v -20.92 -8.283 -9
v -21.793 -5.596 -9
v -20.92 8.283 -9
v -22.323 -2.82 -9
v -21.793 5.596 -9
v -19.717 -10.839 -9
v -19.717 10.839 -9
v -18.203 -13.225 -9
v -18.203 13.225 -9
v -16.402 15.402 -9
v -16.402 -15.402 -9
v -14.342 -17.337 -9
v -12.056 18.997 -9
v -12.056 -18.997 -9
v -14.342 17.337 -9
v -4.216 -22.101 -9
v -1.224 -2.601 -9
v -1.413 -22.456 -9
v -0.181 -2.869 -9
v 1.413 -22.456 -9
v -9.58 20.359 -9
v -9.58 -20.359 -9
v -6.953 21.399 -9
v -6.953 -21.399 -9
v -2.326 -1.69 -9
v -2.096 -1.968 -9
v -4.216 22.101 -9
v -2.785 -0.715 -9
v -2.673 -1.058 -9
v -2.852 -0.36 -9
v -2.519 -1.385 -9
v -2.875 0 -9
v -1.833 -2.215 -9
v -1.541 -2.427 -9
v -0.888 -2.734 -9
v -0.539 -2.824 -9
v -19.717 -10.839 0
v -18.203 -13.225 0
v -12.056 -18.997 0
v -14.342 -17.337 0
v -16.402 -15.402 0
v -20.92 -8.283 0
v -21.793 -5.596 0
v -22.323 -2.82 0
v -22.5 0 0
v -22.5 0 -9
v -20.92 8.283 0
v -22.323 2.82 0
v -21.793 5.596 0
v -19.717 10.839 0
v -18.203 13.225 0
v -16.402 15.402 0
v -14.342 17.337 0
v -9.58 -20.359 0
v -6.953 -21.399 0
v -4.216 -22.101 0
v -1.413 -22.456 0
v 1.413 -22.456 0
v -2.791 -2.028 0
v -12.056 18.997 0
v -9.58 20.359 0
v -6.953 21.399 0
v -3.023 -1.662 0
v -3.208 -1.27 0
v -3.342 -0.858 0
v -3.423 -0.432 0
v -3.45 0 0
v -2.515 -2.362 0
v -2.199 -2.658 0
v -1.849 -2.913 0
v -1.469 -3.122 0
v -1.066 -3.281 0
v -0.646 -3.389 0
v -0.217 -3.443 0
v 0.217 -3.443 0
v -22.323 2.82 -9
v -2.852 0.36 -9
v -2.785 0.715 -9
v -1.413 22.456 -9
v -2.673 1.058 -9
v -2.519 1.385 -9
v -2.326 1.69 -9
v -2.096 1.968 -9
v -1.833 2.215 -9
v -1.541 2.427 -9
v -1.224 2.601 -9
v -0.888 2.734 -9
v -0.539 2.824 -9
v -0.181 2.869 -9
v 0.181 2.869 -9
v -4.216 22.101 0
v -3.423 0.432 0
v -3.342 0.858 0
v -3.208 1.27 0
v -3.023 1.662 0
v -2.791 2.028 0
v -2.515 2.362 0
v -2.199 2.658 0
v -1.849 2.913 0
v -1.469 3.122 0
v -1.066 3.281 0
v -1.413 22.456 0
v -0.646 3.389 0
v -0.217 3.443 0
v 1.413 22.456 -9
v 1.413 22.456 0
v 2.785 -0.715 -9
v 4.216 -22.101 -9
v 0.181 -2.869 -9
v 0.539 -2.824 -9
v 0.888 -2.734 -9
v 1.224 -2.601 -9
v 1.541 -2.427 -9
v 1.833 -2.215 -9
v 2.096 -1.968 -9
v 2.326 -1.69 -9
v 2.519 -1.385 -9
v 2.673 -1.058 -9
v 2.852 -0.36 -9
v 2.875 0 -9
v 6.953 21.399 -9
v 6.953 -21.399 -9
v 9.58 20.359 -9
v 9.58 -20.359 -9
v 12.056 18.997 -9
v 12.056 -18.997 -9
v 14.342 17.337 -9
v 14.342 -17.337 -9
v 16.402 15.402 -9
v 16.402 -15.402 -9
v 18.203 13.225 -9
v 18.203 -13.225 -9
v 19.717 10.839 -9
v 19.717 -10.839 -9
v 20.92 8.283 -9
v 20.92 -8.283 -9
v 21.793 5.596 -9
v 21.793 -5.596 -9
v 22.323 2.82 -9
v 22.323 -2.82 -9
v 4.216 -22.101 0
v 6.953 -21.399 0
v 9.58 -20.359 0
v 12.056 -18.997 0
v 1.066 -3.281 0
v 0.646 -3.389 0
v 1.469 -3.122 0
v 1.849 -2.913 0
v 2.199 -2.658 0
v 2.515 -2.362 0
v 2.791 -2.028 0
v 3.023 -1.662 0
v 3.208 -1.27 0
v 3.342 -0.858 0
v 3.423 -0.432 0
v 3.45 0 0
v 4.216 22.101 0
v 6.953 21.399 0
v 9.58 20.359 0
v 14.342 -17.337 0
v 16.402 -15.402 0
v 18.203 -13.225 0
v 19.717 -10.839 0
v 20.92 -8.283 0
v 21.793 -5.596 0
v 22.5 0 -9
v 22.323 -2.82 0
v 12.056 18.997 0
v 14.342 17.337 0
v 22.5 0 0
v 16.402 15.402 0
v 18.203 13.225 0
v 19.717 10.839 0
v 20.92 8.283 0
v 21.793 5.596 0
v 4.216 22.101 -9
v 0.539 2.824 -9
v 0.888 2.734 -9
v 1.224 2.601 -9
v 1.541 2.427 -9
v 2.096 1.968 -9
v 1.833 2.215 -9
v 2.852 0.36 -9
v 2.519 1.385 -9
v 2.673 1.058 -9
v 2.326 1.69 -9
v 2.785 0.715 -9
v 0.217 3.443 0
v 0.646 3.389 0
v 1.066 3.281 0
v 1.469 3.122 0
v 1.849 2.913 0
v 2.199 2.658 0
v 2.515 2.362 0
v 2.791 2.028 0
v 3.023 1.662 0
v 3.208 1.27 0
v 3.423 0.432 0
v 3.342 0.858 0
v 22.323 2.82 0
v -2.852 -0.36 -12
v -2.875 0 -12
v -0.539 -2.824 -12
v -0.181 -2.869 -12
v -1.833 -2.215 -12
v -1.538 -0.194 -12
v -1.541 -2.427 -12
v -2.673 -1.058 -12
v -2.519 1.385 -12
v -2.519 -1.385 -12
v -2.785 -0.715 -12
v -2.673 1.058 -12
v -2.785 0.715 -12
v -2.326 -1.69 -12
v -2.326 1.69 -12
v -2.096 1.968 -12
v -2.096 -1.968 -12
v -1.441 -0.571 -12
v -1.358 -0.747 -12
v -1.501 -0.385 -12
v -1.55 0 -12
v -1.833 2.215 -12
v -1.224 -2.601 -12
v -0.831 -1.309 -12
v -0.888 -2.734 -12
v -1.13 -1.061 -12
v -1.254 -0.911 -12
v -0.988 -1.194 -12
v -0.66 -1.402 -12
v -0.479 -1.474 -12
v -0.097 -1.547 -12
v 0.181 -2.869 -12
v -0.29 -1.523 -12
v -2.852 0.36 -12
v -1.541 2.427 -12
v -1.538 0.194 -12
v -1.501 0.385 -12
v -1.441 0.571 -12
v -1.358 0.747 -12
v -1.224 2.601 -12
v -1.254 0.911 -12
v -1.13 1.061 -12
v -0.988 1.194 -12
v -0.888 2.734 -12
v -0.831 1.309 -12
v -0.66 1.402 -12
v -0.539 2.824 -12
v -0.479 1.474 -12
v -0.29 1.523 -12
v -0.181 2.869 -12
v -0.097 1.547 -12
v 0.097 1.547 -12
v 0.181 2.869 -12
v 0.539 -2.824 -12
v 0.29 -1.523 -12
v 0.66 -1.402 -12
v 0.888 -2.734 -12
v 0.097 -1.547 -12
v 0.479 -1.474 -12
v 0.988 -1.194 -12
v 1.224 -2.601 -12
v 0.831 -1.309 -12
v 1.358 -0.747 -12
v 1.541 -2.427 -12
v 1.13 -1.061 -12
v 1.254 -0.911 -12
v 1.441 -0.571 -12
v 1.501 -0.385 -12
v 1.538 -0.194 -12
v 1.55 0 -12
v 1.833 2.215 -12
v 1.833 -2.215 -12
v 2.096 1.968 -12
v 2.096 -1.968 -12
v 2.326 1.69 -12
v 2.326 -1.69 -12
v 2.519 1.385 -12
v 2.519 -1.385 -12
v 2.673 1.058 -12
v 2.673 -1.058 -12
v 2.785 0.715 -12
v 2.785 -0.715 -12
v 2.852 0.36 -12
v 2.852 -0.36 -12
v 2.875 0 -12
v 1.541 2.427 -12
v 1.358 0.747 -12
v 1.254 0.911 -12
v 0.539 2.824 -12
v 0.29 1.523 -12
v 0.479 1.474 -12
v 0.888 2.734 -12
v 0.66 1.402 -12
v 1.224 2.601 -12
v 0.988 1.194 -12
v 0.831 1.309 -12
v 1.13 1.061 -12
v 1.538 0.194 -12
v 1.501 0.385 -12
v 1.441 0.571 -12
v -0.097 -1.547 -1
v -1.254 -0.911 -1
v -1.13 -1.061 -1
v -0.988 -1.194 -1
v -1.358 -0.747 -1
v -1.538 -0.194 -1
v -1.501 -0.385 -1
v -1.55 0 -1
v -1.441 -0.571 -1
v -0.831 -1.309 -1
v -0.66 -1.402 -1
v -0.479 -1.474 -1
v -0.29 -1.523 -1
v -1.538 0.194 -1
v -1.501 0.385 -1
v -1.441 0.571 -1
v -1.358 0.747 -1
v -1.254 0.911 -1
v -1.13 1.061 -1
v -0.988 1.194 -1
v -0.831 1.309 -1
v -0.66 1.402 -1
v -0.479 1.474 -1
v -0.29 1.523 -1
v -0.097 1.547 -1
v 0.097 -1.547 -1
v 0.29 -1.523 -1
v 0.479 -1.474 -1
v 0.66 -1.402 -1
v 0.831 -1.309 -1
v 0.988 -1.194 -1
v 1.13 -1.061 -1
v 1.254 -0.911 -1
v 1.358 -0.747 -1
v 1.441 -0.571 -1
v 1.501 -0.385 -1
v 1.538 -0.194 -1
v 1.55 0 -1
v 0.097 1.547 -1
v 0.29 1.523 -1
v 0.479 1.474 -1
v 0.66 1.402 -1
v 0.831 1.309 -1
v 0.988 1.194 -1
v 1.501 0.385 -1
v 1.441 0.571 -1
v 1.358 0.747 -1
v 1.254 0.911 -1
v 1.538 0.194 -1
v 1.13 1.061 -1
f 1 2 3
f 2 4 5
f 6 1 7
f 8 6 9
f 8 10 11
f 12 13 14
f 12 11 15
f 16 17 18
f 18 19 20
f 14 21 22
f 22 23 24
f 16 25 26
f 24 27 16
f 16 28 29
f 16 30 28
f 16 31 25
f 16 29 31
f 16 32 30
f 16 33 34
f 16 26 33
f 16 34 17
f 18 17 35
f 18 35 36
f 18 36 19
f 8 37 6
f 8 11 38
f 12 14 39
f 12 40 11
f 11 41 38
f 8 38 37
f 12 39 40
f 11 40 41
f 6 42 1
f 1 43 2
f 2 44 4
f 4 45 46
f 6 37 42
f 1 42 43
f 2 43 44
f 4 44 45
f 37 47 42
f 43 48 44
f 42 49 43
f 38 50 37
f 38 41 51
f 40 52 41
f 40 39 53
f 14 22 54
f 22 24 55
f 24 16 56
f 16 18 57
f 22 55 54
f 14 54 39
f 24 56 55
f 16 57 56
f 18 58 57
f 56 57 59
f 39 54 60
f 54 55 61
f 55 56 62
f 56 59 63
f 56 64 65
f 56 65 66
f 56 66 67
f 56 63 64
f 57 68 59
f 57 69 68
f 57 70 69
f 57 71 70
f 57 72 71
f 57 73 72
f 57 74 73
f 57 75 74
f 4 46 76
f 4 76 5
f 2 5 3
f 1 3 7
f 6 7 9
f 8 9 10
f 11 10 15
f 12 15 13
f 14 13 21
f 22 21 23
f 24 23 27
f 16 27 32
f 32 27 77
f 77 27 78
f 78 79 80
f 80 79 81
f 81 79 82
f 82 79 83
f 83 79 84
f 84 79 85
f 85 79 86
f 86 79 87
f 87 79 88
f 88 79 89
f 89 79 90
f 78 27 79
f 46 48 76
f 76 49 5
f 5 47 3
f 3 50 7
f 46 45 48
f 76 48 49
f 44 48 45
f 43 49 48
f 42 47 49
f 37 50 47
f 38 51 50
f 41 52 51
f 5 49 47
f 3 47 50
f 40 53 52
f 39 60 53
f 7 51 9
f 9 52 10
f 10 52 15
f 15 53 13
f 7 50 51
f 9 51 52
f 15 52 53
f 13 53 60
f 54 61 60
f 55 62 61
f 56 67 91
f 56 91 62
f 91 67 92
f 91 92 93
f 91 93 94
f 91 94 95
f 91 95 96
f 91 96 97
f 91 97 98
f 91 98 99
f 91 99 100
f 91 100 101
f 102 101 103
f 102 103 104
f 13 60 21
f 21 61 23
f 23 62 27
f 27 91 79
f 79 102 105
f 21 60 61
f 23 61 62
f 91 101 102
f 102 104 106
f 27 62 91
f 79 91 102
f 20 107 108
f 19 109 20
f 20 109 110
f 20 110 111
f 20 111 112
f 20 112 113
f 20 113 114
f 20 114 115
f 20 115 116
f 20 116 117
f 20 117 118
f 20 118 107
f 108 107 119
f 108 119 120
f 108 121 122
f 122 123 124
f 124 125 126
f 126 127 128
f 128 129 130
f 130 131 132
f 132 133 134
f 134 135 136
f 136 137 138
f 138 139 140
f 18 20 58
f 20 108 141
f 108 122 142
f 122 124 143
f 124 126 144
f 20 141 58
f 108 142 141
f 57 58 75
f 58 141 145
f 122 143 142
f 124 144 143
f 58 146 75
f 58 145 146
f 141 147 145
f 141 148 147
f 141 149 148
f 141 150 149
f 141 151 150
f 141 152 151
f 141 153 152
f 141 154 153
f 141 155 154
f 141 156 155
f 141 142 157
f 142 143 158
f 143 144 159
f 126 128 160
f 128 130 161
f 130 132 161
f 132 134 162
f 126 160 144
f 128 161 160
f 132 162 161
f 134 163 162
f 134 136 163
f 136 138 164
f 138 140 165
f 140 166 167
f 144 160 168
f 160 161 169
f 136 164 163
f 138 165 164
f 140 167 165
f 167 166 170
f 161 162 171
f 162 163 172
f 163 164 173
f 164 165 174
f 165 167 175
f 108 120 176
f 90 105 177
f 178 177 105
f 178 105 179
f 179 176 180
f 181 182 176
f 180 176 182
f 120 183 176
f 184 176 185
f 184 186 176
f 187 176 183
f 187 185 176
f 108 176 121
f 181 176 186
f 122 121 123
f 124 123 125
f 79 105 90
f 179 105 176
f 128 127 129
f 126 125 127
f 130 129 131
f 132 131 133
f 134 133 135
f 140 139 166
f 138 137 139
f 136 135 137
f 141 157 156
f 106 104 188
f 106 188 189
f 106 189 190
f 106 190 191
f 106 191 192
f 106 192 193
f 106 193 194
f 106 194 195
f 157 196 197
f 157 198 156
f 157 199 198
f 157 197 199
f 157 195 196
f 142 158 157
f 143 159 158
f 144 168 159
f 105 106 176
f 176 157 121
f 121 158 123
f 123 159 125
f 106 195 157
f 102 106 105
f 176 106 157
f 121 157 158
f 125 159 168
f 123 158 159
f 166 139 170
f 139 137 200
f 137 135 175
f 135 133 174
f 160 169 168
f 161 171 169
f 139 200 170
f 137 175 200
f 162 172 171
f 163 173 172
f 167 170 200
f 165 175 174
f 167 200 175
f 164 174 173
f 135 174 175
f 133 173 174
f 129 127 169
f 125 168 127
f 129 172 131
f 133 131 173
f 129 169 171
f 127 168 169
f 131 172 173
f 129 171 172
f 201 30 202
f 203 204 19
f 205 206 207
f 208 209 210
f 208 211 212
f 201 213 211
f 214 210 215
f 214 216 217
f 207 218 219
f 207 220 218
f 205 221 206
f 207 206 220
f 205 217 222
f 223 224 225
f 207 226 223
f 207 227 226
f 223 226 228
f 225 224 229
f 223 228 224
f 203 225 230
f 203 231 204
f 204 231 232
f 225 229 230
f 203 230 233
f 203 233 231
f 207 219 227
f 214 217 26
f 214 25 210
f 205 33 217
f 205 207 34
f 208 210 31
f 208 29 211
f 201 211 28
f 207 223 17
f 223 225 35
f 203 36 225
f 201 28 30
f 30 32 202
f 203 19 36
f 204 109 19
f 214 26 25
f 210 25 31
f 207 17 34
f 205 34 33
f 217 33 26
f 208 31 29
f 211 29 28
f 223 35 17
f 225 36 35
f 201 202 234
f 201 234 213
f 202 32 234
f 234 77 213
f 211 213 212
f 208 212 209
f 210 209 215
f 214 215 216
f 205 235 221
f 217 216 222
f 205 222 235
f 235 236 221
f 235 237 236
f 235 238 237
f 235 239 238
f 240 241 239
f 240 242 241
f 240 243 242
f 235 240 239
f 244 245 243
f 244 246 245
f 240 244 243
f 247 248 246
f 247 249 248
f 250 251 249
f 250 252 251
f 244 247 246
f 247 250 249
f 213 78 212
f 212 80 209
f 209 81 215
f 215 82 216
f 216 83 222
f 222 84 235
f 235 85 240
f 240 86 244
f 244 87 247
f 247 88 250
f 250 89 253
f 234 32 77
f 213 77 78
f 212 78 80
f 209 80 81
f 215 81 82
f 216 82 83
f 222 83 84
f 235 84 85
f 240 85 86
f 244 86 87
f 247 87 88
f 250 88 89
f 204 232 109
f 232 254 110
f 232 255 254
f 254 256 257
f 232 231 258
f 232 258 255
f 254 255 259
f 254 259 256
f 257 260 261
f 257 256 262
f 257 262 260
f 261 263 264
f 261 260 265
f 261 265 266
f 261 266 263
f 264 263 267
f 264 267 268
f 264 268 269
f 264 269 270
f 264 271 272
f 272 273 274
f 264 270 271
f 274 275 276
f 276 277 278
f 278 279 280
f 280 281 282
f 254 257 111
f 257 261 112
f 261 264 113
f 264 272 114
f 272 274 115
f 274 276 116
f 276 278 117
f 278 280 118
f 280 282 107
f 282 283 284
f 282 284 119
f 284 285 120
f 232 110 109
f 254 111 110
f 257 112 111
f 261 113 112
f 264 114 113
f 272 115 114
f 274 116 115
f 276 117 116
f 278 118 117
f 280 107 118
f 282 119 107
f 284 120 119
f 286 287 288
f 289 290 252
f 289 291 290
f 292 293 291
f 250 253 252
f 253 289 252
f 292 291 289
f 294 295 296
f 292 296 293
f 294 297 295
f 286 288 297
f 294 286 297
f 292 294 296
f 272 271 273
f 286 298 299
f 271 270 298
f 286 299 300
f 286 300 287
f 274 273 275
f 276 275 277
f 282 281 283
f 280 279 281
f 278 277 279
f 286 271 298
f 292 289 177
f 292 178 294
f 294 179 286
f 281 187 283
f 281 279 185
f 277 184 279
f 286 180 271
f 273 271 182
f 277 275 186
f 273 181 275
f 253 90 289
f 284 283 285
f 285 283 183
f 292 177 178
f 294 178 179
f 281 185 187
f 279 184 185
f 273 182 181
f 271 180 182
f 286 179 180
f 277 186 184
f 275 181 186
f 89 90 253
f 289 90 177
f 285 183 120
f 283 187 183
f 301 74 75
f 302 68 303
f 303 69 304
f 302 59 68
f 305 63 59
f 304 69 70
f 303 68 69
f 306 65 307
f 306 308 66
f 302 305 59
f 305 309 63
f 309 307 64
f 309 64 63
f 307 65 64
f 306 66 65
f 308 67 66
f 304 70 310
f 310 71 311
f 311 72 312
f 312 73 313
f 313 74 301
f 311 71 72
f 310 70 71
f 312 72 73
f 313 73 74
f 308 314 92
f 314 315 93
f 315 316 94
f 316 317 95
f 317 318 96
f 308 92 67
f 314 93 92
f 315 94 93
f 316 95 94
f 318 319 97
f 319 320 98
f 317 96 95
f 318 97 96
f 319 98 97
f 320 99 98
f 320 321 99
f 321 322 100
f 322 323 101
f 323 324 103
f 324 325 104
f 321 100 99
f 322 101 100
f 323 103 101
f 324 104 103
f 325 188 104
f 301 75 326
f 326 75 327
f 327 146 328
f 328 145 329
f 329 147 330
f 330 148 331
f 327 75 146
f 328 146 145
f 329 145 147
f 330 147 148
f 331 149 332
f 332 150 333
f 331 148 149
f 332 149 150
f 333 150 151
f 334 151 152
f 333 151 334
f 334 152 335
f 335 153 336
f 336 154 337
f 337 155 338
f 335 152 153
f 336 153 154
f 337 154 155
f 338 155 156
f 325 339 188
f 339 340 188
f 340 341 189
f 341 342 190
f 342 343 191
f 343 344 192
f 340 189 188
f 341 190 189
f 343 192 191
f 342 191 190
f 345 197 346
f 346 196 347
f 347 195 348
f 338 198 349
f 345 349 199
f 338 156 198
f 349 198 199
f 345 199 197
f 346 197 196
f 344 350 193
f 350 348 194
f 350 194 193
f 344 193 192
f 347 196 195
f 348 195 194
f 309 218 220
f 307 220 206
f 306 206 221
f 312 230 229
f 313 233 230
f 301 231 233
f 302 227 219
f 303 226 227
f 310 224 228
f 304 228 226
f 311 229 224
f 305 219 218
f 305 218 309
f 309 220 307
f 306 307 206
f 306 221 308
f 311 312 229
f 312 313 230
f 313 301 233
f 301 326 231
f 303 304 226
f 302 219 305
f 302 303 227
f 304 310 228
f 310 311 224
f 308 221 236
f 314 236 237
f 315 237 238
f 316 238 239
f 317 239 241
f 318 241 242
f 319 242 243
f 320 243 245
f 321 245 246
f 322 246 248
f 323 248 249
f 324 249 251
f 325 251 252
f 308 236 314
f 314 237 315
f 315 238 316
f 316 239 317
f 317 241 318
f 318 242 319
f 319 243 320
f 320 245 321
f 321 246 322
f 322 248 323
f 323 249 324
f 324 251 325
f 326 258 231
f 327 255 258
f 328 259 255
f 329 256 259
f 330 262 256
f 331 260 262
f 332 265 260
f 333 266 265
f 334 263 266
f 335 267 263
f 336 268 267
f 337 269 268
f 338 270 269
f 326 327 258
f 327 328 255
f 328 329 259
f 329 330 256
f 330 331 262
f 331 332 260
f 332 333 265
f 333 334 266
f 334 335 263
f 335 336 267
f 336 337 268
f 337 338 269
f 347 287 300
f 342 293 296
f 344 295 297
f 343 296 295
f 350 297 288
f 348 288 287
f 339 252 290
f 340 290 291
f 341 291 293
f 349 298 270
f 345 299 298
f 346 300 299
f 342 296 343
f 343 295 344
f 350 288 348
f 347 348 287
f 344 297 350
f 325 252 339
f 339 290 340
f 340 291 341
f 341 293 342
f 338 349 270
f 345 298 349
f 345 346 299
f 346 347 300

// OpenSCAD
$fn = 50;


difference() {
	union() {
		translate(v = [0, 0, -9.0000000000]) {
			cylinder(h = 9, r = 22.5000000000);
		}
		#translate(v = [0, 0, -12.0000000000]) {
			cylinder(h = 12, r = 2.8750000000);
		}
	}
	union() {
		translate(v = [0, 0, 0]) {
			rotate(a = [0, 0, 0]) {
				difference() {
					union() {
						translate(v = [0, 0, -12.0000000000]) {
							cylinder(h = 12, r = 1.2500000000);
						}
						translate(v = [0, 0, -1.0000000000]) {
							cylinder(h = 1.0000000000, r1 = 1.5500000000, r2 = 3.4500000000);
						}
						translate(v = [0, 0, -12.0000000000]) {
							cylinder(h = 12, r = 1.5500000000);
						}
						translate(v = [0, 0, -12.0000000000]) {
							cylinder(h = 12, r = 1.2500000000);
						}
					}
					union();
				}
			}
		}
	}
}
